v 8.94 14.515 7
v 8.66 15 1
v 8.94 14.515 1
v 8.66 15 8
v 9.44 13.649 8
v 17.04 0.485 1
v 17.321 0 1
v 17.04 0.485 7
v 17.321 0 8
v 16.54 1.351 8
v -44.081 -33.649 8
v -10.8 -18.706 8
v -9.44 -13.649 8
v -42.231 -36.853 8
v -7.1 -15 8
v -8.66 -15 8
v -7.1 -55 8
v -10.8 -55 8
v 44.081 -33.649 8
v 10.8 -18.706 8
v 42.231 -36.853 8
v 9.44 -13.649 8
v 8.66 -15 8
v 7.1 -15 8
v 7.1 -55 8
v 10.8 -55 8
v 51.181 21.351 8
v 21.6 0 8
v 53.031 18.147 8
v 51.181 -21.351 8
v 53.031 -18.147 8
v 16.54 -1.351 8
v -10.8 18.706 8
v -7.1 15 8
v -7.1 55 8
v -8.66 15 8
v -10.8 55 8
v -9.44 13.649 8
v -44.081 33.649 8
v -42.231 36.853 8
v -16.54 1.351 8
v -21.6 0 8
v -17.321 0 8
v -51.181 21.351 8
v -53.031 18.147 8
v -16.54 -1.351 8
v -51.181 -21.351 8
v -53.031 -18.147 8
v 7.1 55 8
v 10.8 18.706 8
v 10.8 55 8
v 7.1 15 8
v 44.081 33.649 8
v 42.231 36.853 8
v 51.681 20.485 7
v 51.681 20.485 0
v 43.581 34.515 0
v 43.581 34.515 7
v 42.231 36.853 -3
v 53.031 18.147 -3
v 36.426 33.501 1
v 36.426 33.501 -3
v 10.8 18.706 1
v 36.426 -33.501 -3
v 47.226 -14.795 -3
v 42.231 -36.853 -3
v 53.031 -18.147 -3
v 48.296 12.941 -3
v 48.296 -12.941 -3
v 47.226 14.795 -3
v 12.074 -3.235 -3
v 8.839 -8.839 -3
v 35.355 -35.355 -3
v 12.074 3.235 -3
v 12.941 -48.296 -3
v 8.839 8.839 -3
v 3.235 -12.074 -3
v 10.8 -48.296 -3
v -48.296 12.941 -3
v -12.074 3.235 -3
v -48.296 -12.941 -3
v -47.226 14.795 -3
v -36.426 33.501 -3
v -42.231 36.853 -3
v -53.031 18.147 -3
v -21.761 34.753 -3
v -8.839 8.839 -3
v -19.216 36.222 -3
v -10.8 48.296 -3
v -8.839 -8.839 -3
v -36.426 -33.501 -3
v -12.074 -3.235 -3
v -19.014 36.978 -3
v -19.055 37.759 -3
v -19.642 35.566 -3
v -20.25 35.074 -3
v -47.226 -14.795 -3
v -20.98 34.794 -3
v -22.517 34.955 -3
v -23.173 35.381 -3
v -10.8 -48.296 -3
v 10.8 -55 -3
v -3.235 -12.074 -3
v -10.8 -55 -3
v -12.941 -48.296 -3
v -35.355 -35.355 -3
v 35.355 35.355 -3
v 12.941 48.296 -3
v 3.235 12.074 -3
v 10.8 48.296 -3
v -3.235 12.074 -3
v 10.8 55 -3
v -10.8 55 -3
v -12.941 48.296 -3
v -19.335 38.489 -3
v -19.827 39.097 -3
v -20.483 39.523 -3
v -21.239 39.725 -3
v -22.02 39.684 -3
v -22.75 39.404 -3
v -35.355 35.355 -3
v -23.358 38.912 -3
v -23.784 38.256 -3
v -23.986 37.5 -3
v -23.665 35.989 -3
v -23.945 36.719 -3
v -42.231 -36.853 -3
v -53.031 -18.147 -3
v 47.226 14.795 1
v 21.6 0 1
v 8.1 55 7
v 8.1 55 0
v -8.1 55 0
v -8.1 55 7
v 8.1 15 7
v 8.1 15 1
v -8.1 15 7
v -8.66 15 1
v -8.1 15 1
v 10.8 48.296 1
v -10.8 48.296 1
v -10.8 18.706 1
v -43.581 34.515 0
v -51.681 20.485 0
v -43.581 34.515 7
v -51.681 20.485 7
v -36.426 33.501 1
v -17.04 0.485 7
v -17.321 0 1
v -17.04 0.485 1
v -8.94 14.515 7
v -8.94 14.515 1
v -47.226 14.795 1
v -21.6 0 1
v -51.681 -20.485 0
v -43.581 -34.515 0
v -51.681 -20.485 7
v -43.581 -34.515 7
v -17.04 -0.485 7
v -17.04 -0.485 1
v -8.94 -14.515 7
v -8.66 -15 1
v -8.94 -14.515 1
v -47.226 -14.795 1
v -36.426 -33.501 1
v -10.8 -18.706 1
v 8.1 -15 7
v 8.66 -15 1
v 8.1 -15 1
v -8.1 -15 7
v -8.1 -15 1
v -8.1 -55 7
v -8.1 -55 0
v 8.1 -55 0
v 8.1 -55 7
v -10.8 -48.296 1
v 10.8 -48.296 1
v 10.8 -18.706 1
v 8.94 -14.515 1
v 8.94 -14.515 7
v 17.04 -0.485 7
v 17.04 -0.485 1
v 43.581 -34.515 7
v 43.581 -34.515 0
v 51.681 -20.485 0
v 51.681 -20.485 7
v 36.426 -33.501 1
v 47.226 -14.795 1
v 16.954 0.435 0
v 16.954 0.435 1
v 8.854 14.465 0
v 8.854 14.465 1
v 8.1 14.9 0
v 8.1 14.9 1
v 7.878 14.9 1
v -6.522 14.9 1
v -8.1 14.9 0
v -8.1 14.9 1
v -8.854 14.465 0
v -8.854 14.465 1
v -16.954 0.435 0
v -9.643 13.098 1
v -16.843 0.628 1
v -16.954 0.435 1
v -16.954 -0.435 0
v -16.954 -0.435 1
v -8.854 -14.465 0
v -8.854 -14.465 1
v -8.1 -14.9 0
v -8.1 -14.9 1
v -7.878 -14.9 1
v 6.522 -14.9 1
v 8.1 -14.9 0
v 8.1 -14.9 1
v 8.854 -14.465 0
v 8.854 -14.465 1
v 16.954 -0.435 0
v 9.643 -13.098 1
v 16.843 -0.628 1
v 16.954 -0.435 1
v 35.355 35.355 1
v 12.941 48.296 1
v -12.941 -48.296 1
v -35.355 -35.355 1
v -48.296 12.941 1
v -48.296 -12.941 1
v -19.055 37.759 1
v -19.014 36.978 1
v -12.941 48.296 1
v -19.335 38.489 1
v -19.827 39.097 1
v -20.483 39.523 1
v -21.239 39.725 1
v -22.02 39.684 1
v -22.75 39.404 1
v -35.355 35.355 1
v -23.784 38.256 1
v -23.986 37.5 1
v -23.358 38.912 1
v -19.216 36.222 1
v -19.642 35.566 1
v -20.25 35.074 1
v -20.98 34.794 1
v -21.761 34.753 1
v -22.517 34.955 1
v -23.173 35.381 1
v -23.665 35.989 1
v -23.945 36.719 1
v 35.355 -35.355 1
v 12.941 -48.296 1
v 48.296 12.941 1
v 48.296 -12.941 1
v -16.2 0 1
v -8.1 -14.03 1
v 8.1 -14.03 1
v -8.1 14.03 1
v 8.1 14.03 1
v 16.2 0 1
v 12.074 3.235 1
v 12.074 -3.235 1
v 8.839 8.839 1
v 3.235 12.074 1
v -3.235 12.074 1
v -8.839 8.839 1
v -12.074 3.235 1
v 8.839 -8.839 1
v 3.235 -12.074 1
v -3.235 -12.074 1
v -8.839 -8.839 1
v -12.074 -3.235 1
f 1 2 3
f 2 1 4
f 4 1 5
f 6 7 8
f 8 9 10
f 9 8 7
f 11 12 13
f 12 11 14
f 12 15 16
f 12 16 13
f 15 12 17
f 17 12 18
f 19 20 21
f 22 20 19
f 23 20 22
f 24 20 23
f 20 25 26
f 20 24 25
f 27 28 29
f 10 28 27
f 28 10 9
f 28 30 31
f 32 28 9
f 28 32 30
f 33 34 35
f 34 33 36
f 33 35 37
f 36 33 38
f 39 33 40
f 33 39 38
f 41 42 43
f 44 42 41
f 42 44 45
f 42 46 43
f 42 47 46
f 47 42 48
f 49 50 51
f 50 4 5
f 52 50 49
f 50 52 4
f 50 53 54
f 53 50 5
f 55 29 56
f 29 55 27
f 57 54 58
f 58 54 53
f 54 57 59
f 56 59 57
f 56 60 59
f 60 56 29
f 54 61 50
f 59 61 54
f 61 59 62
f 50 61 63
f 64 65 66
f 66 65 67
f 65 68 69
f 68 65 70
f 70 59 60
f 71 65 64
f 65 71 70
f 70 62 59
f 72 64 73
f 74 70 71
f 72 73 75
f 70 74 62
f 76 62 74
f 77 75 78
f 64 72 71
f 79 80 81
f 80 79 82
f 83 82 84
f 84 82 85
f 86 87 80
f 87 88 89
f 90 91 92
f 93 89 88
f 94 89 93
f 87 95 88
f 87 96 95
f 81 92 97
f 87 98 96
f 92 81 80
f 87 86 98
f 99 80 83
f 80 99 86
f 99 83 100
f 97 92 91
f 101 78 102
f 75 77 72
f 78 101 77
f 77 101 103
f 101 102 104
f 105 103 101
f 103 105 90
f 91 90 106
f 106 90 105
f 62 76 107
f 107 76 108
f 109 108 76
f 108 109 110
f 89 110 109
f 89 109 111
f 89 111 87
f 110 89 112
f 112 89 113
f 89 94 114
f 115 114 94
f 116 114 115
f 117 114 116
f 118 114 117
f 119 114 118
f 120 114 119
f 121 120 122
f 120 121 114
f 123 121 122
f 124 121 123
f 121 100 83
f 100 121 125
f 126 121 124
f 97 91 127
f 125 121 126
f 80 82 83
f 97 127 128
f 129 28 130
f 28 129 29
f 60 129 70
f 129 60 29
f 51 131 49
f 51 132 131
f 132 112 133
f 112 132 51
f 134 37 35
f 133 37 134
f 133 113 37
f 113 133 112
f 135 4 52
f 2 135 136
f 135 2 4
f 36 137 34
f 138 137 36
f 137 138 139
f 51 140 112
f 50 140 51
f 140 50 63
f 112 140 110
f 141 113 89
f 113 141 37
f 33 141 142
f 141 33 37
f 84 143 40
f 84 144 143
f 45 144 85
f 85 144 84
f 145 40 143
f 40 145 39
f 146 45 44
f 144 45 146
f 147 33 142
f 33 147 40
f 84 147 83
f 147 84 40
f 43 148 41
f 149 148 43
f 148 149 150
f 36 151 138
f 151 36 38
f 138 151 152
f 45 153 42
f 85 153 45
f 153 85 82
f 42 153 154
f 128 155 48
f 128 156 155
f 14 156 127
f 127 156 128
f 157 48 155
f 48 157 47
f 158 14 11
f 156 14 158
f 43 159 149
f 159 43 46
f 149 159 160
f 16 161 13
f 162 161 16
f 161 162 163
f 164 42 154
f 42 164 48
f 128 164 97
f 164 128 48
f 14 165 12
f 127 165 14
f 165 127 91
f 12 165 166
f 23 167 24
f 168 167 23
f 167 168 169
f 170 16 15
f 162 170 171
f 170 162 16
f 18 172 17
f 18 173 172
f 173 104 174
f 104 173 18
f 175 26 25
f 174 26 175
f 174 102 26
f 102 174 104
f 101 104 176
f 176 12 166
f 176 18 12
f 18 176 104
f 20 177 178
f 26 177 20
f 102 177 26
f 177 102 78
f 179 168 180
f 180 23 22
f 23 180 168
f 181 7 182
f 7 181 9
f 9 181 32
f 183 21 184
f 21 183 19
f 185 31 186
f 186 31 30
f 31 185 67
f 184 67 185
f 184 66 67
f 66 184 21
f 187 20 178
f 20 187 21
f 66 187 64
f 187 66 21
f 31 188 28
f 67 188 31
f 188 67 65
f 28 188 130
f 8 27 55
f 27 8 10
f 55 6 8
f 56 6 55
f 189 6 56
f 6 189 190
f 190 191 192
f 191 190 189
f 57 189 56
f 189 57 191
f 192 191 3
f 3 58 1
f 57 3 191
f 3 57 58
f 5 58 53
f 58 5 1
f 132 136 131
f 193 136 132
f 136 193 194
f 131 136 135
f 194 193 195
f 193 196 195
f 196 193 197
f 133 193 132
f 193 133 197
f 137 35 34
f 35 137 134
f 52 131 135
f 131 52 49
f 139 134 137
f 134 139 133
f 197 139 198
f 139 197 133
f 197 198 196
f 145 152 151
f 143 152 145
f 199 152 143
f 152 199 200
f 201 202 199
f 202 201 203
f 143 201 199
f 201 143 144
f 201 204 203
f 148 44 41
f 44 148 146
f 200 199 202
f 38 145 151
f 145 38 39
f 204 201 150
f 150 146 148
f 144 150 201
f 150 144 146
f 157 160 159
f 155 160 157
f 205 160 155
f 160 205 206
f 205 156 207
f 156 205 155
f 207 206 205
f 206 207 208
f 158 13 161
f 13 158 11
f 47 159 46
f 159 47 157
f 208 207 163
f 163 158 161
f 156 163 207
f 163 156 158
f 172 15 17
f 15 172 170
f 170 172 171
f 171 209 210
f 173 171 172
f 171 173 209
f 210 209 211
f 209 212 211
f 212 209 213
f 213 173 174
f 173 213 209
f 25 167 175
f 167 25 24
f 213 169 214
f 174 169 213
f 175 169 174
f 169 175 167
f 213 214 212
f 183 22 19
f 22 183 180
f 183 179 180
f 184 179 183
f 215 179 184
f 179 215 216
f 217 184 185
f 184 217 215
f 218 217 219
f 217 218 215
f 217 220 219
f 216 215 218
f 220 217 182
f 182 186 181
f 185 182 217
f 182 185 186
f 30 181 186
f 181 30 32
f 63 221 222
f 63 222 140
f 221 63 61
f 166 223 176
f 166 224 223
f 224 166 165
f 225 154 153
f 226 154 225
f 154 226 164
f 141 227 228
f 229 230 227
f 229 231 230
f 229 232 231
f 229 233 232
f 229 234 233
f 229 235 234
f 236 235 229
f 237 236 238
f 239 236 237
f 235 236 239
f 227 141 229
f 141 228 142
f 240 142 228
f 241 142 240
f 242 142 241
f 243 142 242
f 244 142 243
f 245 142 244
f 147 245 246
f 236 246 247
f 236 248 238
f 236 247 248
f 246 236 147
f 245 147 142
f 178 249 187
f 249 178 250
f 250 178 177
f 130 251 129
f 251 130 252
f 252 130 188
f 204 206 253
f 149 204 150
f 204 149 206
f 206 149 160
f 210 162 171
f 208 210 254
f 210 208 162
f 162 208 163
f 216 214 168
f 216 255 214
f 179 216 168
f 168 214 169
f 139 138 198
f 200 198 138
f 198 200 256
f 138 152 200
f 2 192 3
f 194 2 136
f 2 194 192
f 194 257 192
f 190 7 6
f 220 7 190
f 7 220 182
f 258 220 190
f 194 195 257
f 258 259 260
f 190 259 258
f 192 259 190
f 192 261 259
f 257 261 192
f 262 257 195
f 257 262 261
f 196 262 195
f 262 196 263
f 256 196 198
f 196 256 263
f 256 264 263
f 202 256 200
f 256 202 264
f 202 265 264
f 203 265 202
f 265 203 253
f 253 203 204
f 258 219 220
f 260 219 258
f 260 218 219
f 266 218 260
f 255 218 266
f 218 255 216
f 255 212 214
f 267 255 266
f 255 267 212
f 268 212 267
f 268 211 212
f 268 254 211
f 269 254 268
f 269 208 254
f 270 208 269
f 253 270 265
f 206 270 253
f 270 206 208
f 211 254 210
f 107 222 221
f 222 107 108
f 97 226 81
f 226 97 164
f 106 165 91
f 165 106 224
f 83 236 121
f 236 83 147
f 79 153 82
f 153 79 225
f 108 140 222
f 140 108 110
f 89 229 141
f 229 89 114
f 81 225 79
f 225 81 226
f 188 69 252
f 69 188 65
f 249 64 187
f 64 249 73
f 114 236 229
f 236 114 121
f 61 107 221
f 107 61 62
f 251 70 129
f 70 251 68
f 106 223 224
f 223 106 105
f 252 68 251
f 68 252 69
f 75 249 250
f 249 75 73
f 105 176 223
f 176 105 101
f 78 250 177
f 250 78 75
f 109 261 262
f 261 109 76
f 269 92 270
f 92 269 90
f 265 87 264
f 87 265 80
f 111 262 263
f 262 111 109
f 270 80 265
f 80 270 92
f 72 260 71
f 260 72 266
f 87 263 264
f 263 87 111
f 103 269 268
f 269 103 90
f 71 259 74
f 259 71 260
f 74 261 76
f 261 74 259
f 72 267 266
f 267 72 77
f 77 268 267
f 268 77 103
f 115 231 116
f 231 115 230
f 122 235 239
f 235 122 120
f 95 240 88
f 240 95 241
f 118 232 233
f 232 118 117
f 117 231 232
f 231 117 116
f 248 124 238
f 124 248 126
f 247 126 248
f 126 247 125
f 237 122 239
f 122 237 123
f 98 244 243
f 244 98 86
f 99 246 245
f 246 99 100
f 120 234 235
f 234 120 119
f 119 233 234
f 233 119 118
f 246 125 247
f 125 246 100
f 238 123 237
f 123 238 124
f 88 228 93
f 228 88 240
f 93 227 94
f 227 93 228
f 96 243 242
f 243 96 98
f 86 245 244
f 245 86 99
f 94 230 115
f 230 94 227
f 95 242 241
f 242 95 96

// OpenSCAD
w=16.2; // Al stripe width
t=1.0; // Al thickness
t2=7; // Profile thickness
bt=3.0; // Bottom thickness
ww=2.7; // wall width
tt=1.0; // top overhang
ml=40; // section length
bt2=bt+t;

ofs=15;
ofs2=14;
dc=100;
dci=25;
// ofs=-w*sin(60);

module outer(l)
{
translate([0, -w/2-ww, -bt]) cube([l, w+ww*2, bt+t2+tt]);
}

module inner(l, ofs)
{
translate([ofs,0,0]) hull()
{
  translate([-0.1, -w/2, 0]) cube([l+0.2, w, t2]);
  translate([-0.1, -w/2+tt+1, 0]) cube([l+0.2, w-tt*2-2, t2+tt+1]);
}
}

rotate([0,0,30])difference()
{
union()
{
translate([0,0,-bt])rotate([0,0,15])cylinder(h=bt2, d=dc, $fn=12);
for (i = [0 : 5]) rotate([0,0,60*i]) translate([ofs,0,0]) outer(ml);
}
for (i = [0 : 5]) rotate([0,0,60*i]) translate([0,0,0]) inner(ml, ofs);
translate([0,0,-bt-1])rotate([0,0,15])cylinder(h=5+2, d=dci, $fn=12);
for (i = [0 : 5]) rotate([0,0,60*i+30]) translate([-w/2,0,t]) cube([w, 100, tt+2]);
    
// mount hole
translate([0,dc/2-7,-bt-1])cylinder(h=bt2+2,d=5,$fn=20);
}
